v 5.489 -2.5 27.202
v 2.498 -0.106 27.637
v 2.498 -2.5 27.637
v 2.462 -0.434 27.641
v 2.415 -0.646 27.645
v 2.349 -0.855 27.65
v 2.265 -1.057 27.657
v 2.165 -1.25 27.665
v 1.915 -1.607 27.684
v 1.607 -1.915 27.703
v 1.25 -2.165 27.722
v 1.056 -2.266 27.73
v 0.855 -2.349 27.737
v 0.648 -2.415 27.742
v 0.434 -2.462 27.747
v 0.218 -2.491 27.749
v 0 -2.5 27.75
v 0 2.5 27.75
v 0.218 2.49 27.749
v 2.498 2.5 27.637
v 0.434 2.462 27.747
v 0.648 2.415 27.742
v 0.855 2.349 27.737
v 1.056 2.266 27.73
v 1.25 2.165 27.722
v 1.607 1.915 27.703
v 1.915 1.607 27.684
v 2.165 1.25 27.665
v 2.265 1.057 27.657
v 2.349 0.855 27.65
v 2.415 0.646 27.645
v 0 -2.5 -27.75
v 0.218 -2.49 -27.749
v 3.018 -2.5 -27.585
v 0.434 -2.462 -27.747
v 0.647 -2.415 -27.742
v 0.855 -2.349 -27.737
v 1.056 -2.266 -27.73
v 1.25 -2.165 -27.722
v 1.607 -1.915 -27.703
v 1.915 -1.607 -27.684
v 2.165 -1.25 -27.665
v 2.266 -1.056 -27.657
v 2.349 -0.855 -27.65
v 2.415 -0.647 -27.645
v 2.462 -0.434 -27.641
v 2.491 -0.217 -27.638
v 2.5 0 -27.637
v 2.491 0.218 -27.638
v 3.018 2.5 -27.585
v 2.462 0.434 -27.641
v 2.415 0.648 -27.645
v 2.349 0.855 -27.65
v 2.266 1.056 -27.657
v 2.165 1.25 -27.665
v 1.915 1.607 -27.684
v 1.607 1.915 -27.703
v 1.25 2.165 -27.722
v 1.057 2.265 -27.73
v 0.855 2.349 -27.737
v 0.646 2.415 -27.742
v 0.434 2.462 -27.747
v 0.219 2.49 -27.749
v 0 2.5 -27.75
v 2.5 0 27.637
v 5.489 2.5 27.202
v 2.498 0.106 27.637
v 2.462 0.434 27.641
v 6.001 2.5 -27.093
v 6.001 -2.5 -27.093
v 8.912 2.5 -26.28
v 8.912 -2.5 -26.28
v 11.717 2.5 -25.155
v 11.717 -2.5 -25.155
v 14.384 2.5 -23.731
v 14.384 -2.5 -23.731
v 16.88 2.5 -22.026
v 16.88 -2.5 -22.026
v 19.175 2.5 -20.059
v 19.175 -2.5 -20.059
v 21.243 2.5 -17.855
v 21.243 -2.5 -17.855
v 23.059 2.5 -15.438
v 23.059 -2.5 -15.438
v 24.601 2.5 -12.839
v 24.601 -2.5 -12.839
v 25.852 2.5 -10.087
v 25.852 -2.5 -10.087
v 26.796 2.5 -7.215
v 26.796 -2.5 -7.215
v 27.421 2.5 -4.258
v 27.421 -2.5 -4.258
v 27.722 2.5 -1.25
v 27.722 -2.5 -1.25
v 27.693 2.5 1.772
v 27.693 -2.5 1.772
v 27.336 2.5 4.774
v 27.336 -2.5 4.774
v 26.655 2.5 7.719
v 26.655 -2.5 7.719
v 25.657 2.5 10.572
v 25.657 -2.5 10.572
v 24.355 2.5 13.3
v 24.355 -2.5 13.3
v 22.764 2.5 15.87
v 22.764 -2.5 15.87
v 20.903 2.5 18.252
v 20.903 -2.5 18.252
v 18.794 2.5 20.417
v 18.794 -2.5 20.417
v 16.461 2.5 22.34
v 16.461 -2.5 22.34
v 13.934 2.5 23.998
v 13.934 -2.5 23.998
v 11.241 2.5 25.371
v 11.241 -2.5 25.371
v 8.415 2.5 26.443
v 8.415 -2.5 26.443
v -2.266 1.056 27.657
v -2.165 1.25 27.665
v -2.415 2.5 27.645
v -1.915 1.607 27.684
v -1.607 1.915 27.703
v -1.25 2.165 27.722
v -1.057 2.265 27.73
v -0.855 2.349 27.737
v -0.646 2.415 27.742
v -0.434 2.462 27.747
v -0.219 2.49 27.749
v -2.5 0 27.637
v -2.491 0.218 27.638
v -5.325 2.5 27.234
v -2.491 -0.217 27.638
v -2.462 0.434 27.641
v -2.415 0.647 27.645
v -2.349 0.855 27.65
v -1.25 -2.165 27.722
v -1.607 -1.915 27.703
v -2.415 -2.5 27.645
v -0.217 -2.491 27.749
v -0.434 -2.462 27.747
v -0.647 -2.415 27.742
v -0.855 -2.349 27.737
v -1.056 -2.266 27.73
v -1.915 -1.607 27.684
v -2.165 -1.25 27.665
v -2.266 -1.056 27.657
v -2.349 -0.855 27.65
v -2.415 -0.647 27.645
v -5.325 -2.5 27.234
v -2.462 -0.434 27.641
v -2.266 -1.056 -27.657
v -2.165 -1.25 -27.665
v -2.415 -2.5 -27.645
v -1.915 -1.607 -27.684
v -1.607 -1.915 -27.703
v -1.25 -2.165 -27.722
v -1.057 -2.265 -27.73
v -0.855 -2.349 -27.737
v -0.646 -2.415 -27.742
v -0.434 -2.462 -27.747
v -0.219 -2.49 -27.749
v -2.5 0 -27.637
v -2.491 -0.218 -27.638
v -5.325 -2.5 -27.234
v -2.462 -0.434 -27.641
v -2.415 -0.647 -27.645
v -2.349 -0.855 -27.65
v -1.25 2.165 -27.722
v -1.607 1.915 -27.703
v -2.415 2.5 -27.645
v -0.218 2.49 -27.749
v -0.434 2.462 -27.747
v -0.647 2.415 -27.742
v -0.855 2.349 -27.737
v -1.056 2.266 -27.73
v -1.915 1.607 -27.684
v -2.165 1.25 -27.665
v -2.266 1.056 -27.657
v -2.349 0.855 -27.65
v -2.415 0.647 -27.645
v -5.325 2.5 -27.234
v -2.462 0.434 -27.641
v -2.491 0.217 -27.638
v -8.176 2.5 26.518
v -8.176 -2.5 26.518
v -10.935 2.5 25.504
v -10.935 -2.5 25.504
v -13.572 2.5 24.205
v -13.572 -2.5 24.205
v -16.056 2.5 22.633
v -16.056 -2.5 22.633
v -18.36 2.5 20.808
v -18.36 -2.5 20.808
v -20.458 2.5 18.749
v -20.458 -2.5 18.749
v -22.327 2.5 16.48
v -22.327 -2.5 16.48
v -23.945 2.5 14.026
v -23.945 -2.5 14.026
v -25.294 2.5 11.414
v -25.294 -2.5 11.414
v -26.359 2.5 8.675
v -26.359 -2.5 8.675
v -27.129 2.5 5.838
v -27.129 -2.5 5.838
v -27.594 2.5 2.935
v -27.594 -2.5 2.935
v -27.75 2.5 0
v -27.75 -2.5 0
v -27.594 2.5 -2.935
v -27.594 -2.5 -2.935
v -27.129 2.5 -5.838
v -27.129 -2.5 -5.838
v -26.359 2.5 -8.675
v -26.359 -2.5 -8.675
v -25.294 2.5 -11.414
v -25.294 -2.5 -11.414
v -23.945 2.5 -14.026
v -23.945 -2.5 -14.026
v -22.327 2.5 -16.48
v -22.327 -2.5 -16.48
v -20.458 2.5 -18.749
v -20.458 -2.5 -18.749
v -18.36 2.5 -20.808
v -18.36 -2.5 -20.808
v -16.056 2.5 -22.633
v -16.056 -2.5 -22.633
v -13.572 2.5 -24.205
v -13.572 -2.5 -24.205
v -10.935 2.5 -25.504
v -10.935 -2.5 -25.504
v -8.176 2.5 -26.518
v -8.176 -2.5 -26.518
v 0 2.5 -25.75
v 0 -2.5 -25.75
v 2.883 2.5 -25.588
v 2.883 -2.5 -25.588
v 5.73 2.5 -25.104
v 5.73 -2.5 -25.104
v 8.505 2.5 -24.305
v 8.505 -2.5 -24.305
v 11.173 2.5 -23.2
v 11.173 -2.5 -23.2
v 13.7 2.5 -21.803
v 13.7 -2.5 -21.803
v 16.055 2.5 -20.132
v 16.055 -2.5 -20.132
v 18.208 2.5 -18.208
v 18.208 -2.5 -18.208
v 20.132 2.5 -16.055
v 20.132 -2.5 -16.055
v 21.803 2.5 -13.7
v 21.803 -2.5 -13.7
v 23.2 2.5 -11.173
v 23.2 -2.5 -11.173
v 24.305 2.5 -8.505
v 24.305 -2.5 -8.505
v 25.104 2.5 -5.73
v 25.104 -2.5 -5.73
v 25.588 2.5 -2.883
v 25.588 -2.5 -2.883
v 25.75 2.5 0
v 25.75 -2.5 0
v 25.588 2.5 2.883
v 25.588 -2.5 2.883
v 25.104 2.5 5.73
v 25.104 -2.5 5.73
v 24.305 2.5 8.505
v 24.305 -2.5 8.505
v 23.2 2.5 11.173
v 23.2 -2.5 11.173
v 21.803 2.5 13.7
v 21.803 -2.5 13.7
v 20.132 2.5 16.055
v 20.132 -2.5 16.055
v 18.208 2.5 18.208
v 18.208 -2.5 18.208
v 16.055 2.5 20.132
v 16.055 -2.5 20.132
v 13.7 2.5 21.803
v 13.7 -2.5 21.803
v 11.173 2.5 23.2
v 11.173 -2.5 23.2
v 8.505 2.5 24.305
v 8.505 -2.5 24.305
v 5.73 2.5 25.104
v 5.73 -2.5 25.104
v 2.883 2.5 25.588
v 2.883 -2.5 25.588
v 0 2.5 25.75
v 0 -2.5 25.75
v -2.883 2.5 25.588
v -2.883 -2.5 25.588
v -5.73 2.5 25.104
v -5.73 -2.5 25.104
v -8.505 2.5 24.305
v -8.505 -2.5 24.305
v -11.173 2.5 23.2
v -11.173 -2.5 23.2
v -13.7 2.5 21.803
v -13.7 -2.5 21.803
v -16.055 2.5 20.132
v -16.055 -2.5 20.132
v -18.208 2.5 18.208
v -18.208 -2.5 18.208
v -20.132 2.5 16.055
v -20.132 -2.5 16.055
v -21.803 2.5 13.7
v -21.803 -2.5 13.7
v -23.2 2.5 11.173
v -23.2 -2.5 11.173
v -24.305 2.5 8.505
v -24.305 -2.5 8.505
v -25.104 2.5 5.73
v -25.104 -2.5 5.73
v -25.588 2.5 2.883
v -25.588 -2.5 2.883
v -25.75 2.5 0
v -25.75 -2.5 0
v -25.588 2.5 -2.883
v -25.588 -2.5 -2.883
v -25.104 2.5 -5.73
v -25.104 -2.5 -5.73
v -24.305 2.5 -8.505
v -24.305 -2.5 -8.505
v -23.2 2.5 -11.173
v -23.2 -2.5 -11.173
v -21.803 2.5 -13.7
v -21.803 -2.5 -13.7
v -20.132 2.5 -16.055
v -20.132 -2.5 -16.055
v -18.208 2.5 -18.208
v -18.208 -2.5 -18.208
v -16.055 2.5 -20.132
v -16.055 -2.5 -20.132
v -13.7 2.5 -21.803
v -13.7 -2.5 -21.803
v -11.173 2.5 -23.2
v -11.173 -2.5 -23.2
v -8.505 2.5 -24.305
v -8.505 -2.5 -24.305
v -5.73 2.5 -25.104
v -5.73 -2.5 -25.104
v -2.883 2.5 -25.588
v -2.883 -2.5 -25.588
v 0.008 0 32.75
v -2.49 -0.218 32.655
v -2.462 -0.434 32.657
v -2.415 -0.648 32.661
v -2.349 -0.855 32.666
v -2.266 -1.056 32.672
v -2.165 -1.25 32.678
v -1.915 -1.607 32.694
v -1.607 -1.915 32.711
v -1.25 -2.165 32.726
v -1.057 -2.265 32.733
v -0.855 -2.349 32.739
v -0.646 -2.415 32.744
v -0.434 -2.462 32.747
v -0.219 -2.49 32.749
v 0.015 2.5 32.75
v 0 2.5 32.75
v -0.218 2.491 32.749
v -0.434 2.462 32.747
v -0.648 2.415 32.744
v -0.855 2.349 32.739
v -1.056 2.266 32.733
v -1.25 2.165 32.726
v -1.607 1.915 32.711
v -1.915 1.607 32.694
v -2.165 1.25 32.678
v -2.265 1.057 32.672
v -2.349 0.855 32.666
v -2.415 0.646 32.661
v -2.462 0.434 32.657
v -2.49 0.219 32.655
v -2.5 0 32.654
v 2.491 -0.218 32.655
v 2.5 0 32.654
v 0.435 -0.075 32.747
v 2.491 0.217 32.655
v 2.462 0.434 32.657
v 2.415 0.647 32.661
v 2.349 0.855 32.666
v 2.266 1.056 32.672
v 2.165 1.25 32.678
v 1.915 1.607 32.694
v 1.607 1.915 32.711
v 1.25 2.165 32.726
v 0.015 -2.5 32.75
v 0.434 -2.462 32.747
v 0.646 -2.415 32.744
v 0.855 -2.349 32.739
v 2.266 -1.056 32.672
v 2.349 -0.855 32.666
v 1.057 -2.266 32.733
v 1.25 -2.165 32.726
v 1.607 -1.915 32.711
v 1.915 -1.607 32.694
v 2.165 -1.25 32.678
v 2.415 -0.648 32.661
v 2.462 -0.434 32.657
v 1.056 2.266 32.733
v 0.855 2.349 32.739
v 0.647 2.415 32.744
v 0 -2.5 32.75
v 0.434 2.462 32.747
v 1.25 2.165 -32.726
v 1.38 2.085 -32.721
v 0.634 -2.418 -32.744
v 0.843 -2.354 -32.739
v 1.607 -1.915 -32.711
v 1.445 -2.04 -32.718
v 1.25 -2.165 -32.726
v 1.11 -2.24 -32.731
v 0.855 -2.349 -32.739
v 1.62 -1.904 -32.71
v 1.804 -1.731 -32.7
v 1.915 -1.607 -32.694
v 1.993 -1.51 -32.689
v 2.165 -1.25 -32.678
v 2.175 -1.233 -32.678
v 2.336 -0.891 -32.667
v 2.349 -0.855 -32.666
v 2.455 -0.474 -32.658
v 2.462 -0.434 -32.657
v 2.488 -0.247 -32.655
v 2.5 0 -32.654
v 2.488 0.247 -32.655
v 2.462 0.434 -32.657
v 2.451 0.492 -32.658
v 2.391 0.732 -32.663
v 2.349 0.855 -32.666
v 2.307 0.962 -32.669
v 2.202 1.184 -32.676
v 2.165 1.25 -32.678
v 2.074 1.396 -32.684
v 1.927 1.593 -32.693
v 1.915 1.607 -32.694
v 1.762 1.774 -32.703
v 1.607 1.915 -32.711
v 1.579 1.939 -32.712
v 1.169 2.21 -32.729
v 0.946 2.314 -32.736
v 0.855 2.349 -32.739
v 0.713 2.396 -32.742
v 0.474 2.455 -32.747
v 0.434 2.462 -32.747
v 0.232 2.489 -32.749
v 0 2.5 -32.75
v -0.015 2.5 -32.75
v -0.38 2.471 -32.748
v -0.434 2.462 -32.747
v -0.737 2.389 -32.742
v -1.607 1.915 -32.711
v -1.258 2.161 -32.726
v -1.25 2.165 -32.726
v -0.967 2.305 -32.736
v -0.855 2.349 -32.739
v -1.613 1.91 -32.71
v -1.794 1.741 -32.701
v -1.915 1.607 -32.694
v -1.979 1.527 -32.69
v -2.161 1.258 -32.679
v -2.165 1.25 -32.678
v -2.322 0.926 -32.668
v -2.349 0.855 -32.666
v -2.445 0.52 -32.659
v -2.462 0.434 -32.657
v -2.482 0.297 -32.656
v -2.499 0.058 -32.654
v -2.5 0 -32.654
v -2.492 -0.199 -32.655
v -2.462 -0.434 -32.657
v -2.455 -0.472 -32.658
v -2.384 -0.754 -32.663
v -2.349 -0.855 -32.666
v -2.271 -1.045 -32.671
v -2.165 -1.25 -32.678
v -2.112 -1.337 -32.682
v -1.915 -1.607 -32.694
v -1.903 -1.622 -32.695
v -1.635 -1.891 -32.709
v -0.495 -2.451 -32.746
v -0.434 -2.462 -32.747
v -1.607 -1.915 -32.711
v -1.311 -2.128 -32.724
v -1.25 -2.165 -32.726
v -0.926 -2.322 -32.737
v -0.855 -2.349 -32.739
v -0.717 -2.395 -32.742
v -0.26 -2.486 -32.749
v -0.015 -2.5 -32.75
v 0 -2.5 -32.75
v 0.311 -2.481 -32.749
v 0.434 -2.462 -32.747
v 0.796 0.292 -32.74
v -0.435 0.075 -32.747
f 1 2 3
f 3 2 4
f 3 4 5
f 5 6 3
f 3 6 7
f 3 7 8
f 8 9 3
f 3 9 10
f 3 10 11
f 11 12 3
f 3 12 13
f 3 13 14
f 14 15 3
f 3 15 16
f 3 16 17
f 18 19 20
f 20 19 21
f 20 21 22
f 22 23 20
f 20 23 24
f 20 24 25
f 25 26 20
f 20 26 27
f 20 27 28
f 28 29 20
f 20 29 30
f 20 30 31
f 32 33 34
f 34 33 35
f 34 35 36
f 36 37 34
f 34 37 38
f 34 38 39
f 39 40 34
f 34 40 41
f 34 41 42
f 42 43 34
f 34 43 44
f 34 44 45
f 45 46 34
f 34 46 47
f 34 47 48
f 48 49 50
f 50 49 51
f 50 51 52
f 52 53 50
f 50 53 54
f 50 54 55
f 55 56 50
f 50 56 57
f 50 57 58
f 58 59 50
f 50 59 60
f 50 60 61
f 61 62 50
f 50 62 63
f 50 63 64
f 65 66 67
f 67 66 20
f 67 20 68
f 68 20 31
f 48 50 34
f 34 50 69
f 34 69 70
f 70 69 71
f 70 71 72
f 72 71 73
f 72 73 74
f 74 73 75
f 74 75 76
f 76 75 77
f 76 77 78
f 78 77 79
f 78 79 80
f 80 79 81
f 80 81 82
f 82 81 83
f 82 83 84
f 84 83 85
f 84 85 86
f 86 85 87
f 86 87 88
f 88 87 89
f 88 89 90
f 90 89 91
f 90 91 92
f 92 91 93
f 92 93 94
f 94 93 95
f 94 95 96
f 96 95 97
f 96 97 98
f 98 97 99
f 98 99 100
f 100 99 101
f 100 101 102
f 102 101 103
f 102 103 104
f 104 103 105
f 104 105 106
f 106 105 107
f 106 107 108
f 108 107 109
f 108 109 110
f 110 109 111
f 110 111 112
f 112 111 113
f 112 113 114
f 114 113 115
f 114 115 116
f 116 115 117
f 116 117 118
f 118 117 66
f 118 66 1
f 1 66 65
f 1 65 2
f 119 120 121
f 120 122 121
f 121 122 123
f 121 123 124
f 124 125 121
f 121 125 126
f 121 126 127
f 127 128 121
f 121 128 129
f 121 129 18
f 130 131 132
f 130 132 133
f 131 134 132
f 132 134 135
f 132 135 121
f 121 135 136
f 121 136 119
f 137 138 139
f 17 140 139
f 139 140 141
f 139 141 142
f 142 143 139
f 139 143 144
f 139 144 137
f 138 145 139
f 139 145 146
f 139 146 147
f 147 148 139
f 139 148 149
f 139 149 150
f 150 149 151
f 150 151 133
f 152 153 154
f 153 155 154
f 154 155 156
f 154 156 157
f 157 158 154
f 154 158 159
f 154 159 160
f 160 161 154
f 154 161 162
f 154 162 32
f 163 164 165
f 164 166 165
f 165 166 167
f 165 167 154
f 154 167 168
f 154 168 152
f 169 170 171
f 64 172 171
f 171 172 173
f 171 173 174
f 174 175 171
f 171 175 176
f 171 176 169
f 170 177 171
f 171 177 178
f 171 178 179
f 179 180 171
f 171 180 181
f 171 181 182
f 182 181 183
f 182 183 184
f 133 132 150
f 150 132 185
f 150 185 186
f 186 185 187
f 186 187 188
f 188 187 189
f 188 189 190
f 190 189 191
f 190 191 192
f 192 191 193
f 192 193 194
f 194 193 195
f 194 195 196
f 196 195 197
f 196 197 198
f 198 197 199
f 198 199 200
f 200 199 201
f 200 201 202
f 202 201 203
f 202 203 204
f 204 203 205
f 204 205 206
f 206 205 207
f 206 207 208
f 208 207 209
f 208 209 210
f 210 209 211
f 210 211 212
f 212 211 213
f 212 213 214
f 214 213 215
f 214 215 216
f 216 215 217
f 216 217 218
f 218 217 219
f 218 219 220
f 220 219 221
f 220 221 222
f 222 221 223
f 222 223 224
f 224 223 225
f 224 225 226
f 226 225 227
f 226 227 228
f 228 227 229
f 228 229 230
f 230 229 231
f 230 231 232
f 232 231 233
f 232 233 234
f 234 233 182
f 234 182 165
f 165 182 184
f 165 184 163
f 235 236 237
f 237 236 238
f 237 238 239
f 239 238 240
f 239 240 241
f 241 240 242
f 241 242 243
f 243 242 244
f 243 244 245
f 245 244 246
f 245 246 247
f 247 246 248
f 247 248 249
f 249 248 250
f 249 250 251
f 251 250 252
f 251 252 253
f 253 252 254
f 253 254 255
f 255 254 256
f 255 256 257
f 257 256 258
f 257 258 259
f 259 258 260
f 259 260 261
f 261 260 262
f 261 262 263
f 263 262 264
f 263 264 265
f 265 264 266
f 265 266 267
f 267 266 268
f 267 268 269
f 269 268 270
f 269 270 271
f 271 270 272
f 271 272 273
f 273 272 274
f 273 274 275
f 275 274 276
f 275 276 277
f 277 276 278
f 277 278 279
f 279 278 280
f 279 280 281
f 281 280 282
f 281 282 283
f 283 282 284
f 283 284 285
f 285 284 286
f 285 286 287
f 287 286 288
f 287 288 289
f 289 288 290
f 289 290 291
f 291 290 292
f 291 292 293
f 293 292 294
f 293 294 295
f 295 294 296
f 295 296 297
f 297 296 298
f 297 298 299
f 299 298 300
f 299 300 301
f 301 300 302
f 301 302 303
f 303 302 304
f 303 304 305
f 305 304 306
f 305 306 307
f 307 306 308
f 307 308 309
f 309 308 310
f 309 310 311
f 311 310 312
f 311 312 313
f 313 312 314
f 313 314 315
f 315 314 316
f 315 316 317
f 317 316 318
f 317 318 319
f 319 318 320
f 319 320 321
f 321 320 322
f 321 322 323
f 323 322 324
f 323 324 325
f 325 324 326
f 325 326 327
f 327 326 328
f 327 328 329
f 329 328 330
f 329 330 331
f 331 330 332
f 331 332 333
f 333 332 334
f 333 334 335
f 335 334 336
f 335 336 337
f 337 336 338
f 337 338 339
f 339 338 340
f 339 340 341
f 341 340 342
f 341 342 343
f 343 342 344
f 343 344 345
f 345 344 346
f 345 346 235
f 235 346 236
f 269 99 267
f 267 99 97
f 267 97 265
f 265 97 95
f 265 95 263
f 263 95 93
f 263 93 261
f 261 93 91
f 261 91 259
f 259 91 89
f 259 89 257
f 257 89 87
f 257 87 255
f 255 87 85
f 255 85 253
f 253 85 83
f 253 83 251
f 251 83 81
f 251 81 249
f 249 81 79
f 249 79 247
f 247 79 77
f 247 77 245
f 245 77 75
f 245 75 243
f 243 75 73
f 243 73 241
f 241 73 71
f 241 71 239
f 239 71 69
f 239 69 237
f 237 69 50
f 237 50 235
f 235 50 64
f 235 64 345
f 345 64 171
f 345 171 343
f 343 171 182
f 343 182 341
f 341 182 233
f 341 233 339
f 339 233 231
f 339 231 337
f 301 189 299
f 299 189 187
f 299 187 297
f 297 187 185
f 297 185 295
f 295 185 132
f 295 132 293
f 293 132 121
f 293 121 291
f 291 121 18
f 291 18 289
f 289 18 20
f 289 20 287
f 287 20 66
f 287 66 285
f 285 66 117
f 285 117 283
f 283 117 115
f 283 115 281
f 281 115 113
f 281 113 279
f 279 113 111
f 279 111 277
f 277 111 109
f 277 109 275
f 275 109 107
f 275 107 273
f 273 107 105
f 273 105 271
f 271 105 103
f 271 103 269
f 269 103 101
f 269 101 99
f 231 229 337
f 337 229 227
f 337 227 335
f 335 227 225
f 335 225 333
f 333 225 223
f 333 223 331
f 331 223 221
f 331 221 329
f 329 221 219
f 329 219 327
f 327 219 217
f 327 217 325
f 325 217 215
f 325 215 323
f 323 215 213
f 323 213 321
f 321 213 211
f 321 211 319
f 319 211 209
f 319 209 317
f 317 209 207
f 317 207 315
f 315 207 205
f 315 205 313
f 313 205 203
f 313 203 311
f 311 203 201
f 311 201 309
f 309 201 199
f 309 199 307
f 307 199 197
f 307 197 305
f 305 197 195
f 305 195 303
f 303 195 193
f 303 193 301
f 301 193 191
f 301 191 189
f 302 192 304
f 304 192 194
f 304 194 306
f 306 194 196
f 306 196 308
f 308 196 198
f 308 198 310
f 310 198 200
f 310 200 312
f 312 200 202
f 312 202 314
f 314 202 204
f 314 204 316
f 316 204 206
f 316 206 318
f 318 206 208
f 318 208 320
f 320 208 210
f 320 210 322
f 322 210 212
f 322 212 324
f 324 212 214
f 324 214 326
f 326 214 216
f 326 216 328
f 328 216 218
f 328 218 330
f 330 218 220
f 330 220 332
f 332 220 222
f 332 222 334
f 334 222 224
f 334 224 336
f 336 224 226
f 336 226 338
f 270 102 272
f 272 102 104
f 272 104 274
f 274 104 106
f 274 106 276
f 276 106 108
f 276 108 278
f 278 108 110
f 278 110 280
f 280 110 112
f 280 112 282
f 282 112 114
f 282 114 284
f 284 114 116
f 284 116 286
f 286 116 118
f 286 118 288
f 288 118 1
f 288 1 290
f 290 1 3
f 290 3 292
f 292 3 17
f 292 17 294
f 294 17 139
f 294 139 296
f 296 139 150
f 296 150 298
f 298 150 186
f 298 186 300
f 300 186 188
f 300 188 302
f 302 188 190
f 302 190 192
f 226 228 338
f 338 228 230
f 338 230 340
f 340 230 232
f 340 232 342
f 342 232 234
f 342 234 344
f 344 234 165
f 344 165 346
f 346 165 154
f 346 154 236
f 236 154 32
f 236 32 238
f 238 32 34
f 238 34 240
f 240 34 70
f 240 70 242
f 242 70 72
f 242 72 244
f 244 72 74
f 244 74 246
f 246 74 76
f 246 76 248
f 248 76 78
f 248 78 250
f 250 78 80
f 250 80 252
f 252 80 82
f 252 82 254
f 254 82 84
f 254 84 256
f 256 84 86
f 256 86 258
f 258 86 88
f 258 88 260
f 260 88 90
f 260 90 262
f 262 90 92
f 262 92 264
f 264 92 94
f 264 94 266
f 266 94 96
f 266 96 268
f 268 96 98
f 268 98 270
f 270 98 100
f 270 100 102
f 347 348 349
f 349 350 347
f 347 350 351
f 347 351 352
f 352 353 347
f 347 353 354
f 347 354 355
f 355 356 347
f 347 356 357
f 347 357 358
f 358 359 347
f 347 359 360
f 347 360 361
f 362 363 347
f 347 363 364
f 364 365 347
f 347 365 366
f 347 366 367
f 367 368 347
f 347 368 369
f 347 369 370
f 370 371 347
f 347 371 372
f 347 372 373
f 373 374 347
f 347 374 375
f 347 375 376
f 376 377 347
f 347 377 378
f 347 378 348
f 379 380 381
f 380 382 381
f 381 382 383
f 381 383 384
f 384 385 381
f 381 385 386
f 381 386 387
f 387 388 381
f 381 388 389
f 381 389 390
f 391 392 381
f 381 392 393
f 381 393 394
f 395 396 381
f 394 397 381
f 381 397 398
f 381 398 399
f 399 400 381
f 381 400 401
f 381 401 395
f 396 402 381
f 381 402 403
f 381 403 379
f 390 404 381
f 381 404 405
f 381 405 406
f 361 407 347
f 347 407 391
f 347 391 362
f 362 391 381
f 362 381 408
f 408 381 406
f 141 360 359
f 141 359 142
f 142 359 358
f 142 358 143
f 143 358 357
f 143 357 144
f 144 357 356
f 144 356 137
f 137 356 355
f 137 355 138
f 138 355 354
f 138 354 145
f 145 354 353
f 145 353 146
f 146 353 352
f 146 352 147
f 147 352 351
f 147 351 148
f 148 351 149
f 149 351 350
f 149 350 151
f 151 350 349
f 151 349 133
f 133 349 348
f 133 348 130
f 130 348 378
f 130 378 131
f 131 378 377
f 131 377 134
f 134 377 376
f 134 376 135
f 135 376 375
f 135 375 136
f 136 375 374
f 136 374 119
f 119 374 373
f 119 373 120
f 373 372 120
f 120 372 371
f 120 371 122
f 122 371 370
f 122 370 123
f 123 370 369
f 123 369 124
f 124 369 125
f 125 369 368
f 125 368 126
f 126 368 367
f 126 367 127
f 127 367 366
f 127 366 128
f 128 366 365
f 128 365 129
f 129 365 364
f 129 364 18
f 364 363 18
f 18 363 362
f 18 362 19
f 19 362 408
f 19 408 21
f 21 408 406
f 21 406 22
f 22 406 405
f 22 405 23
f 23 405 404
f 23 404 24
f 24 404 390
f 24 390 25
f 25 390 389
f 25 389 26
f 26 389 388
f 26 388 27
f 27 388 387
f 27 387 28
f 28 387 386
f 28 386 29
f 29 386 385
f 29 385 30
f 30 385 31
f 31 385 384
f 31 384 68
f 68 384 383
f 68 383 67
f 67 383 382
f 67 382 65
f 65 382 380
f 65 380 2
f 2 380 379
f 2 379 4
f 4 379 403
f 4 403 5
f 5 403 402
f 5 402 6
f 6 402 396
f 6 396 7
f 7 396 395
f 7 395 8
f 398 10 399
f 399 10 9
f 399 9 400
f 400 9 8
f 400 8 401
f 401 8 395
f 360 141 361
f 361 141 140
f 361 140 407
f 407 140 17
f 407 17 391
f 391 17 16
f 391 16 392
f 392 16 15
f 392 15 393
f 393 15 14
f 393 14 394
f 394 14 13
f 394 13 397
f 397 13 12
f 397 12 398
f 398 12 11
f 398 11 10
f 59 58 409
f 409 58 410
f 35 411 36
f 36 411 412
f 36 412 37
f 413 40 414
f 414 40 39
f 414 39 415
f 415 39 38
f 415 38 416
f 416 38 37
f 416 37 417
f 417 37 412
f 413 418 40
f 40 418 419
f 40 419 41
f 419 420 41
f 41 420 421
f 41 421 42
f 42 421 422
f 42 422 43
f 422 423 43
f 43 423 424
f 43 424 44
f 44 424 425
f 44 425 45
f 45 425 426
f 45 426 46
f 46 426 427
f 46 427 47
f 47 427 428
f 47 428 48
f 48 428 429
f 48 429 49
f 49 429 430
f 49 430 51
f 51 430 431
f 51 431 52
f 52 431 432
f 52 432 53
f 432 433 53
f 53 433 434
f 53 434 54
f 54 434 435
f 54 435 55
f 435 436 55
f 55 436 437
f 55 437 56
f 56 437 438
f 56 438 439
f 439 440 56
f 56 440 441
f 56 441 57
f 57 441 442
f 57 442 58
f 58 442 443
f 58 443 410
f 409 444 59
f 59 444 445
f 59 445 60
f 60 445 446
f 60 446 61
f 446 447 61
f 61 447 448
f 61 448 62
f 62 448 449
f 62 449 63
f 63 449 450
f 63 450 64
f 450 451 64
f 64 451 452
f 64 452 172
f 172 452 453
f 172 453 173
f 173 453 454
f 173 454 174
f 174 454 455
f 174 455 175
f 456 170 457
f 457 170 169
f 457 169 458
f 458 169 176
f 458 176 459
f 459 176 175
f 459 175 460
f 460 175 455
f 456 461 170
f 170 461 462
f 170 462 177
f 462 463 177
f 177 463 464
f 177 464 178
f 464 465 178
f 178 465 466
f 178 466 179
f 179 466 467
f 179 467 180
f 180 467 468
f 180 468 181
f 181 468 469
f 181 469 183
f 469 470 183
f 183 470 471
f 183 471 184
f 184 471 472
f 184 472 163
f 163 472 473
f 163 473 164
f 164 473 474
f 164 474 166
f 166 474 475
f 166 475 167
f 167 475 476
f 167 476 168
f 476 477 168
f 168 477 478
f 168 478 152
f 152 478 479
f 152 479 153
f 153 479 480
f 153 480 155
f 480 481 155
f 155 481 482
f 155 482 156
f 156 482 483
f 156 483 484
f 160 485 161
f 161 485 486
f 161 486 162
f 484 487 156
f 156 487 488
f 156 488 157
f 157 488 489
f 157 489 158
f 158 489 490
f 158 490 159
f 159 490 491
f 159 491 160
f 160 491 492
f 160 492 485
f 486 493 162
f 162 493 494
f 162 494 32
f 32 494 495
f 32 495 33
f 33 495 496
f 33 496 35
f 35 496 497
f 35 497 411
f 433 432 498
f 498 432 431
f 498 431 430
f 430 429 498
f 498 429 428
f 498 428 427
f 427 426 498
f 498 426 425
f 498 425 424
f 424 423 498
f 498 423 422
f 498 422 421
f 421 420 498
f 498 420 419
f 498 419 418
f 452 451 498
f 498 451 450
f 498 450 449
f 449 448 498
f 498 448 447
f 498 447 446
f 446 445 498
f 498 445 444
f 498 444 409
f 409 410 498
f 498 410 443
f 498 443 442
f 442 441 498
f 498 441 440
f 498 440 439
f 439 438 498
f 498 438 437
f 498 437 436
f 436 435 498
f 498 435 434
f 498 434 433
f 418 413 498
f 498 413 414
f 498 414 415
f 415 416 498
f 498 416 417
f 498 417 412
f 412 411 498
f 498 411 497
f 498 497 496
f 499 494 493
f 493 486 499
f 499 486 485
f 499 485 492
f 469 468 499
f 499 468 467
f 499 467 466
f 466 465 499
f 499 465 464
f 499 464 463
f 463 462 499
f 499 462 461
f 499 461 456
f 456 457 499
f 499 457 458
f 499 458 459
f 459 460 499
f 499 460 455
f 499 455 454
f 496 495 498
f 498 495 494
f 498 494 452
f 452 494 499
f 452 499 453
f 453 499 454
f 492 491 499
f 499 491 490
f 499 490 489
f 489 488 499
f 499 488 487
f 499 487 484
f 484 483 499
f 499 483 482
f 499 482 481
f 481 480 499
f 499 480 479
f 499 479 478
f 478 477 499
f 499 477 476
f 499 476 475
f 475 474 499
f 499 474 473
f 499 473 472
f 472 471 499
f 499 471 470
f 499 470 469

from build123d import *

# Parameters (mm, degrees)
SKETCH1_R               = 27.75
SKETCH1_R_2             = 25.75
BOSS_EXTRUDE1_DEPTH     = 2.5
BOSS_EXTRUDE2_START     = -32.750000066
BOSS_EXTRUDE2_OUTLINE_R = 2.5
BOSS_EXTRUDE2_DEPTH     = 65.500000132
BOSS_EXTRUDE2_START_2   = -3
BOSS_EXTRUDE2_2_DEPTH   = 6
CUT_EXTRUDE1_DEPTH      = 43.998546635
CUT_EXTRUDE1_DEPTH_BACK = 43.998546635
SKETCH3_R               = 25.75


with BuildPart() as part:
    # Sketch1 → Boss-Extrude1 (new, symmetric)
    with BuildSketch(Plane(origin=(0, 0, 0), x_dir=(1, 0, 0), z_dir=(0, 1, 0))):
        with Locations(Location((0, 0, 0), (0, 0, 270))):
            Circle(SKETCH1_R)
        with Locations(Location((0, 0, 0), (0, 0, 270))):
            Circle(SKETCH1_R_2, mode=Mode.SUBTRACT)
    extrude(amount=BOSS_EXTRUDE1_DEPTH, both=True)

    # Boss-Extrude2: read off the stored shape, not the designer's step
    # Boss-Extrude2 outline → Boss-Extrude2 (add)
    with BuildSketch(Plane.XY.offset(BOSS_EXTRUDE2_START)):
        Circle(BOSS_EXTRUDE2_OUTLINE_R)
    extrude(amount=BOSS_EXTRUDE2_DEPTH)

    # Boss-Extrude2 2 outline → Boss-Extrude2 2 (cut)
    with BuildSketch(Plane(origin=(0, 0, 0), x_dir=(1, 0, 0), z_dir=(0, 1, 0)).offset(BOSS_EXTRUDE2_START_2)):
        with BuildLine():
            Line((4, -32.539570024), (2.500688791, -32.654387999))
            ThreePointArc((2.500688791, -32.654387999), (1.251258189, -32.726088262), (4.28e-07, -32.75))
            Line((4.28e-07, -32.75), (4, -32.750000066))
            Line((4, -32.750000066), (4, -32.539570024))
        make_face()
        with BuildLine():
            Line((-4, -32.750000066), (4.28e-07, -32.75))
            ThreePointArc((4.28e-07, -32.75), (-1.250913366, -32.726101444), (-2.500001508, -32.654440624))
            Line((-2.500001508, -32.654440624), (-4, -32.539601772))
            Line((-4, -32.539601772), (-4, -32.750000066))
        make_face()
        with BuildLine():
            Line((2.500001316, 32.654440639), (4, 32.539601781))
            Line((4, 32.539601781), (4, 32.750000066))
            Line((4, 32.750000066), (1e-09, 32.75))
            ThreePointArc((1e-09, 32.75), (1.250913484, 32.72610144), (2.500001316, 32.654440639))
        make_face()
        with BuildLine():
            Line((-4, 32.750000066), (-4, 32.539577528))
            Line((-4, 32.539577528), (-2.500526303, 32.654400442))
            ThreePointArc((-2.500526303, 32.654400442), (-1.251176552, 32.726091384), (1e-09, 32.75))
            Line((1e-09, 32.75), (-4, 32.750000066))
        make_face()
    extrude(amount=BOSS_EXTRUDE2_2_DEPTH, mode=Mode.SUBTRACT)

    # Sketch3 → Cut-Extrude1 (cut, two sides: drawn at the far end of the back side and taken through both)
    with BuildSketch(Plane(origin=(0, 0, 0), x_dir=(1, 0, 0), z_dir=(0, 1, 0)).offset(-CUT_EXTRUDE1_DEPTH_BACK)):
        with Locations(Location((0, 0, 0), (0, 0, 270))):
            Circle(SKETCH3_R)
    extrude(amount=CUT_EXTRUDE1_DEPTH + CUT_EXTRUDE1_DEPTH_BACK, mode=Mode.SUBTRACT)


solid = part.part
